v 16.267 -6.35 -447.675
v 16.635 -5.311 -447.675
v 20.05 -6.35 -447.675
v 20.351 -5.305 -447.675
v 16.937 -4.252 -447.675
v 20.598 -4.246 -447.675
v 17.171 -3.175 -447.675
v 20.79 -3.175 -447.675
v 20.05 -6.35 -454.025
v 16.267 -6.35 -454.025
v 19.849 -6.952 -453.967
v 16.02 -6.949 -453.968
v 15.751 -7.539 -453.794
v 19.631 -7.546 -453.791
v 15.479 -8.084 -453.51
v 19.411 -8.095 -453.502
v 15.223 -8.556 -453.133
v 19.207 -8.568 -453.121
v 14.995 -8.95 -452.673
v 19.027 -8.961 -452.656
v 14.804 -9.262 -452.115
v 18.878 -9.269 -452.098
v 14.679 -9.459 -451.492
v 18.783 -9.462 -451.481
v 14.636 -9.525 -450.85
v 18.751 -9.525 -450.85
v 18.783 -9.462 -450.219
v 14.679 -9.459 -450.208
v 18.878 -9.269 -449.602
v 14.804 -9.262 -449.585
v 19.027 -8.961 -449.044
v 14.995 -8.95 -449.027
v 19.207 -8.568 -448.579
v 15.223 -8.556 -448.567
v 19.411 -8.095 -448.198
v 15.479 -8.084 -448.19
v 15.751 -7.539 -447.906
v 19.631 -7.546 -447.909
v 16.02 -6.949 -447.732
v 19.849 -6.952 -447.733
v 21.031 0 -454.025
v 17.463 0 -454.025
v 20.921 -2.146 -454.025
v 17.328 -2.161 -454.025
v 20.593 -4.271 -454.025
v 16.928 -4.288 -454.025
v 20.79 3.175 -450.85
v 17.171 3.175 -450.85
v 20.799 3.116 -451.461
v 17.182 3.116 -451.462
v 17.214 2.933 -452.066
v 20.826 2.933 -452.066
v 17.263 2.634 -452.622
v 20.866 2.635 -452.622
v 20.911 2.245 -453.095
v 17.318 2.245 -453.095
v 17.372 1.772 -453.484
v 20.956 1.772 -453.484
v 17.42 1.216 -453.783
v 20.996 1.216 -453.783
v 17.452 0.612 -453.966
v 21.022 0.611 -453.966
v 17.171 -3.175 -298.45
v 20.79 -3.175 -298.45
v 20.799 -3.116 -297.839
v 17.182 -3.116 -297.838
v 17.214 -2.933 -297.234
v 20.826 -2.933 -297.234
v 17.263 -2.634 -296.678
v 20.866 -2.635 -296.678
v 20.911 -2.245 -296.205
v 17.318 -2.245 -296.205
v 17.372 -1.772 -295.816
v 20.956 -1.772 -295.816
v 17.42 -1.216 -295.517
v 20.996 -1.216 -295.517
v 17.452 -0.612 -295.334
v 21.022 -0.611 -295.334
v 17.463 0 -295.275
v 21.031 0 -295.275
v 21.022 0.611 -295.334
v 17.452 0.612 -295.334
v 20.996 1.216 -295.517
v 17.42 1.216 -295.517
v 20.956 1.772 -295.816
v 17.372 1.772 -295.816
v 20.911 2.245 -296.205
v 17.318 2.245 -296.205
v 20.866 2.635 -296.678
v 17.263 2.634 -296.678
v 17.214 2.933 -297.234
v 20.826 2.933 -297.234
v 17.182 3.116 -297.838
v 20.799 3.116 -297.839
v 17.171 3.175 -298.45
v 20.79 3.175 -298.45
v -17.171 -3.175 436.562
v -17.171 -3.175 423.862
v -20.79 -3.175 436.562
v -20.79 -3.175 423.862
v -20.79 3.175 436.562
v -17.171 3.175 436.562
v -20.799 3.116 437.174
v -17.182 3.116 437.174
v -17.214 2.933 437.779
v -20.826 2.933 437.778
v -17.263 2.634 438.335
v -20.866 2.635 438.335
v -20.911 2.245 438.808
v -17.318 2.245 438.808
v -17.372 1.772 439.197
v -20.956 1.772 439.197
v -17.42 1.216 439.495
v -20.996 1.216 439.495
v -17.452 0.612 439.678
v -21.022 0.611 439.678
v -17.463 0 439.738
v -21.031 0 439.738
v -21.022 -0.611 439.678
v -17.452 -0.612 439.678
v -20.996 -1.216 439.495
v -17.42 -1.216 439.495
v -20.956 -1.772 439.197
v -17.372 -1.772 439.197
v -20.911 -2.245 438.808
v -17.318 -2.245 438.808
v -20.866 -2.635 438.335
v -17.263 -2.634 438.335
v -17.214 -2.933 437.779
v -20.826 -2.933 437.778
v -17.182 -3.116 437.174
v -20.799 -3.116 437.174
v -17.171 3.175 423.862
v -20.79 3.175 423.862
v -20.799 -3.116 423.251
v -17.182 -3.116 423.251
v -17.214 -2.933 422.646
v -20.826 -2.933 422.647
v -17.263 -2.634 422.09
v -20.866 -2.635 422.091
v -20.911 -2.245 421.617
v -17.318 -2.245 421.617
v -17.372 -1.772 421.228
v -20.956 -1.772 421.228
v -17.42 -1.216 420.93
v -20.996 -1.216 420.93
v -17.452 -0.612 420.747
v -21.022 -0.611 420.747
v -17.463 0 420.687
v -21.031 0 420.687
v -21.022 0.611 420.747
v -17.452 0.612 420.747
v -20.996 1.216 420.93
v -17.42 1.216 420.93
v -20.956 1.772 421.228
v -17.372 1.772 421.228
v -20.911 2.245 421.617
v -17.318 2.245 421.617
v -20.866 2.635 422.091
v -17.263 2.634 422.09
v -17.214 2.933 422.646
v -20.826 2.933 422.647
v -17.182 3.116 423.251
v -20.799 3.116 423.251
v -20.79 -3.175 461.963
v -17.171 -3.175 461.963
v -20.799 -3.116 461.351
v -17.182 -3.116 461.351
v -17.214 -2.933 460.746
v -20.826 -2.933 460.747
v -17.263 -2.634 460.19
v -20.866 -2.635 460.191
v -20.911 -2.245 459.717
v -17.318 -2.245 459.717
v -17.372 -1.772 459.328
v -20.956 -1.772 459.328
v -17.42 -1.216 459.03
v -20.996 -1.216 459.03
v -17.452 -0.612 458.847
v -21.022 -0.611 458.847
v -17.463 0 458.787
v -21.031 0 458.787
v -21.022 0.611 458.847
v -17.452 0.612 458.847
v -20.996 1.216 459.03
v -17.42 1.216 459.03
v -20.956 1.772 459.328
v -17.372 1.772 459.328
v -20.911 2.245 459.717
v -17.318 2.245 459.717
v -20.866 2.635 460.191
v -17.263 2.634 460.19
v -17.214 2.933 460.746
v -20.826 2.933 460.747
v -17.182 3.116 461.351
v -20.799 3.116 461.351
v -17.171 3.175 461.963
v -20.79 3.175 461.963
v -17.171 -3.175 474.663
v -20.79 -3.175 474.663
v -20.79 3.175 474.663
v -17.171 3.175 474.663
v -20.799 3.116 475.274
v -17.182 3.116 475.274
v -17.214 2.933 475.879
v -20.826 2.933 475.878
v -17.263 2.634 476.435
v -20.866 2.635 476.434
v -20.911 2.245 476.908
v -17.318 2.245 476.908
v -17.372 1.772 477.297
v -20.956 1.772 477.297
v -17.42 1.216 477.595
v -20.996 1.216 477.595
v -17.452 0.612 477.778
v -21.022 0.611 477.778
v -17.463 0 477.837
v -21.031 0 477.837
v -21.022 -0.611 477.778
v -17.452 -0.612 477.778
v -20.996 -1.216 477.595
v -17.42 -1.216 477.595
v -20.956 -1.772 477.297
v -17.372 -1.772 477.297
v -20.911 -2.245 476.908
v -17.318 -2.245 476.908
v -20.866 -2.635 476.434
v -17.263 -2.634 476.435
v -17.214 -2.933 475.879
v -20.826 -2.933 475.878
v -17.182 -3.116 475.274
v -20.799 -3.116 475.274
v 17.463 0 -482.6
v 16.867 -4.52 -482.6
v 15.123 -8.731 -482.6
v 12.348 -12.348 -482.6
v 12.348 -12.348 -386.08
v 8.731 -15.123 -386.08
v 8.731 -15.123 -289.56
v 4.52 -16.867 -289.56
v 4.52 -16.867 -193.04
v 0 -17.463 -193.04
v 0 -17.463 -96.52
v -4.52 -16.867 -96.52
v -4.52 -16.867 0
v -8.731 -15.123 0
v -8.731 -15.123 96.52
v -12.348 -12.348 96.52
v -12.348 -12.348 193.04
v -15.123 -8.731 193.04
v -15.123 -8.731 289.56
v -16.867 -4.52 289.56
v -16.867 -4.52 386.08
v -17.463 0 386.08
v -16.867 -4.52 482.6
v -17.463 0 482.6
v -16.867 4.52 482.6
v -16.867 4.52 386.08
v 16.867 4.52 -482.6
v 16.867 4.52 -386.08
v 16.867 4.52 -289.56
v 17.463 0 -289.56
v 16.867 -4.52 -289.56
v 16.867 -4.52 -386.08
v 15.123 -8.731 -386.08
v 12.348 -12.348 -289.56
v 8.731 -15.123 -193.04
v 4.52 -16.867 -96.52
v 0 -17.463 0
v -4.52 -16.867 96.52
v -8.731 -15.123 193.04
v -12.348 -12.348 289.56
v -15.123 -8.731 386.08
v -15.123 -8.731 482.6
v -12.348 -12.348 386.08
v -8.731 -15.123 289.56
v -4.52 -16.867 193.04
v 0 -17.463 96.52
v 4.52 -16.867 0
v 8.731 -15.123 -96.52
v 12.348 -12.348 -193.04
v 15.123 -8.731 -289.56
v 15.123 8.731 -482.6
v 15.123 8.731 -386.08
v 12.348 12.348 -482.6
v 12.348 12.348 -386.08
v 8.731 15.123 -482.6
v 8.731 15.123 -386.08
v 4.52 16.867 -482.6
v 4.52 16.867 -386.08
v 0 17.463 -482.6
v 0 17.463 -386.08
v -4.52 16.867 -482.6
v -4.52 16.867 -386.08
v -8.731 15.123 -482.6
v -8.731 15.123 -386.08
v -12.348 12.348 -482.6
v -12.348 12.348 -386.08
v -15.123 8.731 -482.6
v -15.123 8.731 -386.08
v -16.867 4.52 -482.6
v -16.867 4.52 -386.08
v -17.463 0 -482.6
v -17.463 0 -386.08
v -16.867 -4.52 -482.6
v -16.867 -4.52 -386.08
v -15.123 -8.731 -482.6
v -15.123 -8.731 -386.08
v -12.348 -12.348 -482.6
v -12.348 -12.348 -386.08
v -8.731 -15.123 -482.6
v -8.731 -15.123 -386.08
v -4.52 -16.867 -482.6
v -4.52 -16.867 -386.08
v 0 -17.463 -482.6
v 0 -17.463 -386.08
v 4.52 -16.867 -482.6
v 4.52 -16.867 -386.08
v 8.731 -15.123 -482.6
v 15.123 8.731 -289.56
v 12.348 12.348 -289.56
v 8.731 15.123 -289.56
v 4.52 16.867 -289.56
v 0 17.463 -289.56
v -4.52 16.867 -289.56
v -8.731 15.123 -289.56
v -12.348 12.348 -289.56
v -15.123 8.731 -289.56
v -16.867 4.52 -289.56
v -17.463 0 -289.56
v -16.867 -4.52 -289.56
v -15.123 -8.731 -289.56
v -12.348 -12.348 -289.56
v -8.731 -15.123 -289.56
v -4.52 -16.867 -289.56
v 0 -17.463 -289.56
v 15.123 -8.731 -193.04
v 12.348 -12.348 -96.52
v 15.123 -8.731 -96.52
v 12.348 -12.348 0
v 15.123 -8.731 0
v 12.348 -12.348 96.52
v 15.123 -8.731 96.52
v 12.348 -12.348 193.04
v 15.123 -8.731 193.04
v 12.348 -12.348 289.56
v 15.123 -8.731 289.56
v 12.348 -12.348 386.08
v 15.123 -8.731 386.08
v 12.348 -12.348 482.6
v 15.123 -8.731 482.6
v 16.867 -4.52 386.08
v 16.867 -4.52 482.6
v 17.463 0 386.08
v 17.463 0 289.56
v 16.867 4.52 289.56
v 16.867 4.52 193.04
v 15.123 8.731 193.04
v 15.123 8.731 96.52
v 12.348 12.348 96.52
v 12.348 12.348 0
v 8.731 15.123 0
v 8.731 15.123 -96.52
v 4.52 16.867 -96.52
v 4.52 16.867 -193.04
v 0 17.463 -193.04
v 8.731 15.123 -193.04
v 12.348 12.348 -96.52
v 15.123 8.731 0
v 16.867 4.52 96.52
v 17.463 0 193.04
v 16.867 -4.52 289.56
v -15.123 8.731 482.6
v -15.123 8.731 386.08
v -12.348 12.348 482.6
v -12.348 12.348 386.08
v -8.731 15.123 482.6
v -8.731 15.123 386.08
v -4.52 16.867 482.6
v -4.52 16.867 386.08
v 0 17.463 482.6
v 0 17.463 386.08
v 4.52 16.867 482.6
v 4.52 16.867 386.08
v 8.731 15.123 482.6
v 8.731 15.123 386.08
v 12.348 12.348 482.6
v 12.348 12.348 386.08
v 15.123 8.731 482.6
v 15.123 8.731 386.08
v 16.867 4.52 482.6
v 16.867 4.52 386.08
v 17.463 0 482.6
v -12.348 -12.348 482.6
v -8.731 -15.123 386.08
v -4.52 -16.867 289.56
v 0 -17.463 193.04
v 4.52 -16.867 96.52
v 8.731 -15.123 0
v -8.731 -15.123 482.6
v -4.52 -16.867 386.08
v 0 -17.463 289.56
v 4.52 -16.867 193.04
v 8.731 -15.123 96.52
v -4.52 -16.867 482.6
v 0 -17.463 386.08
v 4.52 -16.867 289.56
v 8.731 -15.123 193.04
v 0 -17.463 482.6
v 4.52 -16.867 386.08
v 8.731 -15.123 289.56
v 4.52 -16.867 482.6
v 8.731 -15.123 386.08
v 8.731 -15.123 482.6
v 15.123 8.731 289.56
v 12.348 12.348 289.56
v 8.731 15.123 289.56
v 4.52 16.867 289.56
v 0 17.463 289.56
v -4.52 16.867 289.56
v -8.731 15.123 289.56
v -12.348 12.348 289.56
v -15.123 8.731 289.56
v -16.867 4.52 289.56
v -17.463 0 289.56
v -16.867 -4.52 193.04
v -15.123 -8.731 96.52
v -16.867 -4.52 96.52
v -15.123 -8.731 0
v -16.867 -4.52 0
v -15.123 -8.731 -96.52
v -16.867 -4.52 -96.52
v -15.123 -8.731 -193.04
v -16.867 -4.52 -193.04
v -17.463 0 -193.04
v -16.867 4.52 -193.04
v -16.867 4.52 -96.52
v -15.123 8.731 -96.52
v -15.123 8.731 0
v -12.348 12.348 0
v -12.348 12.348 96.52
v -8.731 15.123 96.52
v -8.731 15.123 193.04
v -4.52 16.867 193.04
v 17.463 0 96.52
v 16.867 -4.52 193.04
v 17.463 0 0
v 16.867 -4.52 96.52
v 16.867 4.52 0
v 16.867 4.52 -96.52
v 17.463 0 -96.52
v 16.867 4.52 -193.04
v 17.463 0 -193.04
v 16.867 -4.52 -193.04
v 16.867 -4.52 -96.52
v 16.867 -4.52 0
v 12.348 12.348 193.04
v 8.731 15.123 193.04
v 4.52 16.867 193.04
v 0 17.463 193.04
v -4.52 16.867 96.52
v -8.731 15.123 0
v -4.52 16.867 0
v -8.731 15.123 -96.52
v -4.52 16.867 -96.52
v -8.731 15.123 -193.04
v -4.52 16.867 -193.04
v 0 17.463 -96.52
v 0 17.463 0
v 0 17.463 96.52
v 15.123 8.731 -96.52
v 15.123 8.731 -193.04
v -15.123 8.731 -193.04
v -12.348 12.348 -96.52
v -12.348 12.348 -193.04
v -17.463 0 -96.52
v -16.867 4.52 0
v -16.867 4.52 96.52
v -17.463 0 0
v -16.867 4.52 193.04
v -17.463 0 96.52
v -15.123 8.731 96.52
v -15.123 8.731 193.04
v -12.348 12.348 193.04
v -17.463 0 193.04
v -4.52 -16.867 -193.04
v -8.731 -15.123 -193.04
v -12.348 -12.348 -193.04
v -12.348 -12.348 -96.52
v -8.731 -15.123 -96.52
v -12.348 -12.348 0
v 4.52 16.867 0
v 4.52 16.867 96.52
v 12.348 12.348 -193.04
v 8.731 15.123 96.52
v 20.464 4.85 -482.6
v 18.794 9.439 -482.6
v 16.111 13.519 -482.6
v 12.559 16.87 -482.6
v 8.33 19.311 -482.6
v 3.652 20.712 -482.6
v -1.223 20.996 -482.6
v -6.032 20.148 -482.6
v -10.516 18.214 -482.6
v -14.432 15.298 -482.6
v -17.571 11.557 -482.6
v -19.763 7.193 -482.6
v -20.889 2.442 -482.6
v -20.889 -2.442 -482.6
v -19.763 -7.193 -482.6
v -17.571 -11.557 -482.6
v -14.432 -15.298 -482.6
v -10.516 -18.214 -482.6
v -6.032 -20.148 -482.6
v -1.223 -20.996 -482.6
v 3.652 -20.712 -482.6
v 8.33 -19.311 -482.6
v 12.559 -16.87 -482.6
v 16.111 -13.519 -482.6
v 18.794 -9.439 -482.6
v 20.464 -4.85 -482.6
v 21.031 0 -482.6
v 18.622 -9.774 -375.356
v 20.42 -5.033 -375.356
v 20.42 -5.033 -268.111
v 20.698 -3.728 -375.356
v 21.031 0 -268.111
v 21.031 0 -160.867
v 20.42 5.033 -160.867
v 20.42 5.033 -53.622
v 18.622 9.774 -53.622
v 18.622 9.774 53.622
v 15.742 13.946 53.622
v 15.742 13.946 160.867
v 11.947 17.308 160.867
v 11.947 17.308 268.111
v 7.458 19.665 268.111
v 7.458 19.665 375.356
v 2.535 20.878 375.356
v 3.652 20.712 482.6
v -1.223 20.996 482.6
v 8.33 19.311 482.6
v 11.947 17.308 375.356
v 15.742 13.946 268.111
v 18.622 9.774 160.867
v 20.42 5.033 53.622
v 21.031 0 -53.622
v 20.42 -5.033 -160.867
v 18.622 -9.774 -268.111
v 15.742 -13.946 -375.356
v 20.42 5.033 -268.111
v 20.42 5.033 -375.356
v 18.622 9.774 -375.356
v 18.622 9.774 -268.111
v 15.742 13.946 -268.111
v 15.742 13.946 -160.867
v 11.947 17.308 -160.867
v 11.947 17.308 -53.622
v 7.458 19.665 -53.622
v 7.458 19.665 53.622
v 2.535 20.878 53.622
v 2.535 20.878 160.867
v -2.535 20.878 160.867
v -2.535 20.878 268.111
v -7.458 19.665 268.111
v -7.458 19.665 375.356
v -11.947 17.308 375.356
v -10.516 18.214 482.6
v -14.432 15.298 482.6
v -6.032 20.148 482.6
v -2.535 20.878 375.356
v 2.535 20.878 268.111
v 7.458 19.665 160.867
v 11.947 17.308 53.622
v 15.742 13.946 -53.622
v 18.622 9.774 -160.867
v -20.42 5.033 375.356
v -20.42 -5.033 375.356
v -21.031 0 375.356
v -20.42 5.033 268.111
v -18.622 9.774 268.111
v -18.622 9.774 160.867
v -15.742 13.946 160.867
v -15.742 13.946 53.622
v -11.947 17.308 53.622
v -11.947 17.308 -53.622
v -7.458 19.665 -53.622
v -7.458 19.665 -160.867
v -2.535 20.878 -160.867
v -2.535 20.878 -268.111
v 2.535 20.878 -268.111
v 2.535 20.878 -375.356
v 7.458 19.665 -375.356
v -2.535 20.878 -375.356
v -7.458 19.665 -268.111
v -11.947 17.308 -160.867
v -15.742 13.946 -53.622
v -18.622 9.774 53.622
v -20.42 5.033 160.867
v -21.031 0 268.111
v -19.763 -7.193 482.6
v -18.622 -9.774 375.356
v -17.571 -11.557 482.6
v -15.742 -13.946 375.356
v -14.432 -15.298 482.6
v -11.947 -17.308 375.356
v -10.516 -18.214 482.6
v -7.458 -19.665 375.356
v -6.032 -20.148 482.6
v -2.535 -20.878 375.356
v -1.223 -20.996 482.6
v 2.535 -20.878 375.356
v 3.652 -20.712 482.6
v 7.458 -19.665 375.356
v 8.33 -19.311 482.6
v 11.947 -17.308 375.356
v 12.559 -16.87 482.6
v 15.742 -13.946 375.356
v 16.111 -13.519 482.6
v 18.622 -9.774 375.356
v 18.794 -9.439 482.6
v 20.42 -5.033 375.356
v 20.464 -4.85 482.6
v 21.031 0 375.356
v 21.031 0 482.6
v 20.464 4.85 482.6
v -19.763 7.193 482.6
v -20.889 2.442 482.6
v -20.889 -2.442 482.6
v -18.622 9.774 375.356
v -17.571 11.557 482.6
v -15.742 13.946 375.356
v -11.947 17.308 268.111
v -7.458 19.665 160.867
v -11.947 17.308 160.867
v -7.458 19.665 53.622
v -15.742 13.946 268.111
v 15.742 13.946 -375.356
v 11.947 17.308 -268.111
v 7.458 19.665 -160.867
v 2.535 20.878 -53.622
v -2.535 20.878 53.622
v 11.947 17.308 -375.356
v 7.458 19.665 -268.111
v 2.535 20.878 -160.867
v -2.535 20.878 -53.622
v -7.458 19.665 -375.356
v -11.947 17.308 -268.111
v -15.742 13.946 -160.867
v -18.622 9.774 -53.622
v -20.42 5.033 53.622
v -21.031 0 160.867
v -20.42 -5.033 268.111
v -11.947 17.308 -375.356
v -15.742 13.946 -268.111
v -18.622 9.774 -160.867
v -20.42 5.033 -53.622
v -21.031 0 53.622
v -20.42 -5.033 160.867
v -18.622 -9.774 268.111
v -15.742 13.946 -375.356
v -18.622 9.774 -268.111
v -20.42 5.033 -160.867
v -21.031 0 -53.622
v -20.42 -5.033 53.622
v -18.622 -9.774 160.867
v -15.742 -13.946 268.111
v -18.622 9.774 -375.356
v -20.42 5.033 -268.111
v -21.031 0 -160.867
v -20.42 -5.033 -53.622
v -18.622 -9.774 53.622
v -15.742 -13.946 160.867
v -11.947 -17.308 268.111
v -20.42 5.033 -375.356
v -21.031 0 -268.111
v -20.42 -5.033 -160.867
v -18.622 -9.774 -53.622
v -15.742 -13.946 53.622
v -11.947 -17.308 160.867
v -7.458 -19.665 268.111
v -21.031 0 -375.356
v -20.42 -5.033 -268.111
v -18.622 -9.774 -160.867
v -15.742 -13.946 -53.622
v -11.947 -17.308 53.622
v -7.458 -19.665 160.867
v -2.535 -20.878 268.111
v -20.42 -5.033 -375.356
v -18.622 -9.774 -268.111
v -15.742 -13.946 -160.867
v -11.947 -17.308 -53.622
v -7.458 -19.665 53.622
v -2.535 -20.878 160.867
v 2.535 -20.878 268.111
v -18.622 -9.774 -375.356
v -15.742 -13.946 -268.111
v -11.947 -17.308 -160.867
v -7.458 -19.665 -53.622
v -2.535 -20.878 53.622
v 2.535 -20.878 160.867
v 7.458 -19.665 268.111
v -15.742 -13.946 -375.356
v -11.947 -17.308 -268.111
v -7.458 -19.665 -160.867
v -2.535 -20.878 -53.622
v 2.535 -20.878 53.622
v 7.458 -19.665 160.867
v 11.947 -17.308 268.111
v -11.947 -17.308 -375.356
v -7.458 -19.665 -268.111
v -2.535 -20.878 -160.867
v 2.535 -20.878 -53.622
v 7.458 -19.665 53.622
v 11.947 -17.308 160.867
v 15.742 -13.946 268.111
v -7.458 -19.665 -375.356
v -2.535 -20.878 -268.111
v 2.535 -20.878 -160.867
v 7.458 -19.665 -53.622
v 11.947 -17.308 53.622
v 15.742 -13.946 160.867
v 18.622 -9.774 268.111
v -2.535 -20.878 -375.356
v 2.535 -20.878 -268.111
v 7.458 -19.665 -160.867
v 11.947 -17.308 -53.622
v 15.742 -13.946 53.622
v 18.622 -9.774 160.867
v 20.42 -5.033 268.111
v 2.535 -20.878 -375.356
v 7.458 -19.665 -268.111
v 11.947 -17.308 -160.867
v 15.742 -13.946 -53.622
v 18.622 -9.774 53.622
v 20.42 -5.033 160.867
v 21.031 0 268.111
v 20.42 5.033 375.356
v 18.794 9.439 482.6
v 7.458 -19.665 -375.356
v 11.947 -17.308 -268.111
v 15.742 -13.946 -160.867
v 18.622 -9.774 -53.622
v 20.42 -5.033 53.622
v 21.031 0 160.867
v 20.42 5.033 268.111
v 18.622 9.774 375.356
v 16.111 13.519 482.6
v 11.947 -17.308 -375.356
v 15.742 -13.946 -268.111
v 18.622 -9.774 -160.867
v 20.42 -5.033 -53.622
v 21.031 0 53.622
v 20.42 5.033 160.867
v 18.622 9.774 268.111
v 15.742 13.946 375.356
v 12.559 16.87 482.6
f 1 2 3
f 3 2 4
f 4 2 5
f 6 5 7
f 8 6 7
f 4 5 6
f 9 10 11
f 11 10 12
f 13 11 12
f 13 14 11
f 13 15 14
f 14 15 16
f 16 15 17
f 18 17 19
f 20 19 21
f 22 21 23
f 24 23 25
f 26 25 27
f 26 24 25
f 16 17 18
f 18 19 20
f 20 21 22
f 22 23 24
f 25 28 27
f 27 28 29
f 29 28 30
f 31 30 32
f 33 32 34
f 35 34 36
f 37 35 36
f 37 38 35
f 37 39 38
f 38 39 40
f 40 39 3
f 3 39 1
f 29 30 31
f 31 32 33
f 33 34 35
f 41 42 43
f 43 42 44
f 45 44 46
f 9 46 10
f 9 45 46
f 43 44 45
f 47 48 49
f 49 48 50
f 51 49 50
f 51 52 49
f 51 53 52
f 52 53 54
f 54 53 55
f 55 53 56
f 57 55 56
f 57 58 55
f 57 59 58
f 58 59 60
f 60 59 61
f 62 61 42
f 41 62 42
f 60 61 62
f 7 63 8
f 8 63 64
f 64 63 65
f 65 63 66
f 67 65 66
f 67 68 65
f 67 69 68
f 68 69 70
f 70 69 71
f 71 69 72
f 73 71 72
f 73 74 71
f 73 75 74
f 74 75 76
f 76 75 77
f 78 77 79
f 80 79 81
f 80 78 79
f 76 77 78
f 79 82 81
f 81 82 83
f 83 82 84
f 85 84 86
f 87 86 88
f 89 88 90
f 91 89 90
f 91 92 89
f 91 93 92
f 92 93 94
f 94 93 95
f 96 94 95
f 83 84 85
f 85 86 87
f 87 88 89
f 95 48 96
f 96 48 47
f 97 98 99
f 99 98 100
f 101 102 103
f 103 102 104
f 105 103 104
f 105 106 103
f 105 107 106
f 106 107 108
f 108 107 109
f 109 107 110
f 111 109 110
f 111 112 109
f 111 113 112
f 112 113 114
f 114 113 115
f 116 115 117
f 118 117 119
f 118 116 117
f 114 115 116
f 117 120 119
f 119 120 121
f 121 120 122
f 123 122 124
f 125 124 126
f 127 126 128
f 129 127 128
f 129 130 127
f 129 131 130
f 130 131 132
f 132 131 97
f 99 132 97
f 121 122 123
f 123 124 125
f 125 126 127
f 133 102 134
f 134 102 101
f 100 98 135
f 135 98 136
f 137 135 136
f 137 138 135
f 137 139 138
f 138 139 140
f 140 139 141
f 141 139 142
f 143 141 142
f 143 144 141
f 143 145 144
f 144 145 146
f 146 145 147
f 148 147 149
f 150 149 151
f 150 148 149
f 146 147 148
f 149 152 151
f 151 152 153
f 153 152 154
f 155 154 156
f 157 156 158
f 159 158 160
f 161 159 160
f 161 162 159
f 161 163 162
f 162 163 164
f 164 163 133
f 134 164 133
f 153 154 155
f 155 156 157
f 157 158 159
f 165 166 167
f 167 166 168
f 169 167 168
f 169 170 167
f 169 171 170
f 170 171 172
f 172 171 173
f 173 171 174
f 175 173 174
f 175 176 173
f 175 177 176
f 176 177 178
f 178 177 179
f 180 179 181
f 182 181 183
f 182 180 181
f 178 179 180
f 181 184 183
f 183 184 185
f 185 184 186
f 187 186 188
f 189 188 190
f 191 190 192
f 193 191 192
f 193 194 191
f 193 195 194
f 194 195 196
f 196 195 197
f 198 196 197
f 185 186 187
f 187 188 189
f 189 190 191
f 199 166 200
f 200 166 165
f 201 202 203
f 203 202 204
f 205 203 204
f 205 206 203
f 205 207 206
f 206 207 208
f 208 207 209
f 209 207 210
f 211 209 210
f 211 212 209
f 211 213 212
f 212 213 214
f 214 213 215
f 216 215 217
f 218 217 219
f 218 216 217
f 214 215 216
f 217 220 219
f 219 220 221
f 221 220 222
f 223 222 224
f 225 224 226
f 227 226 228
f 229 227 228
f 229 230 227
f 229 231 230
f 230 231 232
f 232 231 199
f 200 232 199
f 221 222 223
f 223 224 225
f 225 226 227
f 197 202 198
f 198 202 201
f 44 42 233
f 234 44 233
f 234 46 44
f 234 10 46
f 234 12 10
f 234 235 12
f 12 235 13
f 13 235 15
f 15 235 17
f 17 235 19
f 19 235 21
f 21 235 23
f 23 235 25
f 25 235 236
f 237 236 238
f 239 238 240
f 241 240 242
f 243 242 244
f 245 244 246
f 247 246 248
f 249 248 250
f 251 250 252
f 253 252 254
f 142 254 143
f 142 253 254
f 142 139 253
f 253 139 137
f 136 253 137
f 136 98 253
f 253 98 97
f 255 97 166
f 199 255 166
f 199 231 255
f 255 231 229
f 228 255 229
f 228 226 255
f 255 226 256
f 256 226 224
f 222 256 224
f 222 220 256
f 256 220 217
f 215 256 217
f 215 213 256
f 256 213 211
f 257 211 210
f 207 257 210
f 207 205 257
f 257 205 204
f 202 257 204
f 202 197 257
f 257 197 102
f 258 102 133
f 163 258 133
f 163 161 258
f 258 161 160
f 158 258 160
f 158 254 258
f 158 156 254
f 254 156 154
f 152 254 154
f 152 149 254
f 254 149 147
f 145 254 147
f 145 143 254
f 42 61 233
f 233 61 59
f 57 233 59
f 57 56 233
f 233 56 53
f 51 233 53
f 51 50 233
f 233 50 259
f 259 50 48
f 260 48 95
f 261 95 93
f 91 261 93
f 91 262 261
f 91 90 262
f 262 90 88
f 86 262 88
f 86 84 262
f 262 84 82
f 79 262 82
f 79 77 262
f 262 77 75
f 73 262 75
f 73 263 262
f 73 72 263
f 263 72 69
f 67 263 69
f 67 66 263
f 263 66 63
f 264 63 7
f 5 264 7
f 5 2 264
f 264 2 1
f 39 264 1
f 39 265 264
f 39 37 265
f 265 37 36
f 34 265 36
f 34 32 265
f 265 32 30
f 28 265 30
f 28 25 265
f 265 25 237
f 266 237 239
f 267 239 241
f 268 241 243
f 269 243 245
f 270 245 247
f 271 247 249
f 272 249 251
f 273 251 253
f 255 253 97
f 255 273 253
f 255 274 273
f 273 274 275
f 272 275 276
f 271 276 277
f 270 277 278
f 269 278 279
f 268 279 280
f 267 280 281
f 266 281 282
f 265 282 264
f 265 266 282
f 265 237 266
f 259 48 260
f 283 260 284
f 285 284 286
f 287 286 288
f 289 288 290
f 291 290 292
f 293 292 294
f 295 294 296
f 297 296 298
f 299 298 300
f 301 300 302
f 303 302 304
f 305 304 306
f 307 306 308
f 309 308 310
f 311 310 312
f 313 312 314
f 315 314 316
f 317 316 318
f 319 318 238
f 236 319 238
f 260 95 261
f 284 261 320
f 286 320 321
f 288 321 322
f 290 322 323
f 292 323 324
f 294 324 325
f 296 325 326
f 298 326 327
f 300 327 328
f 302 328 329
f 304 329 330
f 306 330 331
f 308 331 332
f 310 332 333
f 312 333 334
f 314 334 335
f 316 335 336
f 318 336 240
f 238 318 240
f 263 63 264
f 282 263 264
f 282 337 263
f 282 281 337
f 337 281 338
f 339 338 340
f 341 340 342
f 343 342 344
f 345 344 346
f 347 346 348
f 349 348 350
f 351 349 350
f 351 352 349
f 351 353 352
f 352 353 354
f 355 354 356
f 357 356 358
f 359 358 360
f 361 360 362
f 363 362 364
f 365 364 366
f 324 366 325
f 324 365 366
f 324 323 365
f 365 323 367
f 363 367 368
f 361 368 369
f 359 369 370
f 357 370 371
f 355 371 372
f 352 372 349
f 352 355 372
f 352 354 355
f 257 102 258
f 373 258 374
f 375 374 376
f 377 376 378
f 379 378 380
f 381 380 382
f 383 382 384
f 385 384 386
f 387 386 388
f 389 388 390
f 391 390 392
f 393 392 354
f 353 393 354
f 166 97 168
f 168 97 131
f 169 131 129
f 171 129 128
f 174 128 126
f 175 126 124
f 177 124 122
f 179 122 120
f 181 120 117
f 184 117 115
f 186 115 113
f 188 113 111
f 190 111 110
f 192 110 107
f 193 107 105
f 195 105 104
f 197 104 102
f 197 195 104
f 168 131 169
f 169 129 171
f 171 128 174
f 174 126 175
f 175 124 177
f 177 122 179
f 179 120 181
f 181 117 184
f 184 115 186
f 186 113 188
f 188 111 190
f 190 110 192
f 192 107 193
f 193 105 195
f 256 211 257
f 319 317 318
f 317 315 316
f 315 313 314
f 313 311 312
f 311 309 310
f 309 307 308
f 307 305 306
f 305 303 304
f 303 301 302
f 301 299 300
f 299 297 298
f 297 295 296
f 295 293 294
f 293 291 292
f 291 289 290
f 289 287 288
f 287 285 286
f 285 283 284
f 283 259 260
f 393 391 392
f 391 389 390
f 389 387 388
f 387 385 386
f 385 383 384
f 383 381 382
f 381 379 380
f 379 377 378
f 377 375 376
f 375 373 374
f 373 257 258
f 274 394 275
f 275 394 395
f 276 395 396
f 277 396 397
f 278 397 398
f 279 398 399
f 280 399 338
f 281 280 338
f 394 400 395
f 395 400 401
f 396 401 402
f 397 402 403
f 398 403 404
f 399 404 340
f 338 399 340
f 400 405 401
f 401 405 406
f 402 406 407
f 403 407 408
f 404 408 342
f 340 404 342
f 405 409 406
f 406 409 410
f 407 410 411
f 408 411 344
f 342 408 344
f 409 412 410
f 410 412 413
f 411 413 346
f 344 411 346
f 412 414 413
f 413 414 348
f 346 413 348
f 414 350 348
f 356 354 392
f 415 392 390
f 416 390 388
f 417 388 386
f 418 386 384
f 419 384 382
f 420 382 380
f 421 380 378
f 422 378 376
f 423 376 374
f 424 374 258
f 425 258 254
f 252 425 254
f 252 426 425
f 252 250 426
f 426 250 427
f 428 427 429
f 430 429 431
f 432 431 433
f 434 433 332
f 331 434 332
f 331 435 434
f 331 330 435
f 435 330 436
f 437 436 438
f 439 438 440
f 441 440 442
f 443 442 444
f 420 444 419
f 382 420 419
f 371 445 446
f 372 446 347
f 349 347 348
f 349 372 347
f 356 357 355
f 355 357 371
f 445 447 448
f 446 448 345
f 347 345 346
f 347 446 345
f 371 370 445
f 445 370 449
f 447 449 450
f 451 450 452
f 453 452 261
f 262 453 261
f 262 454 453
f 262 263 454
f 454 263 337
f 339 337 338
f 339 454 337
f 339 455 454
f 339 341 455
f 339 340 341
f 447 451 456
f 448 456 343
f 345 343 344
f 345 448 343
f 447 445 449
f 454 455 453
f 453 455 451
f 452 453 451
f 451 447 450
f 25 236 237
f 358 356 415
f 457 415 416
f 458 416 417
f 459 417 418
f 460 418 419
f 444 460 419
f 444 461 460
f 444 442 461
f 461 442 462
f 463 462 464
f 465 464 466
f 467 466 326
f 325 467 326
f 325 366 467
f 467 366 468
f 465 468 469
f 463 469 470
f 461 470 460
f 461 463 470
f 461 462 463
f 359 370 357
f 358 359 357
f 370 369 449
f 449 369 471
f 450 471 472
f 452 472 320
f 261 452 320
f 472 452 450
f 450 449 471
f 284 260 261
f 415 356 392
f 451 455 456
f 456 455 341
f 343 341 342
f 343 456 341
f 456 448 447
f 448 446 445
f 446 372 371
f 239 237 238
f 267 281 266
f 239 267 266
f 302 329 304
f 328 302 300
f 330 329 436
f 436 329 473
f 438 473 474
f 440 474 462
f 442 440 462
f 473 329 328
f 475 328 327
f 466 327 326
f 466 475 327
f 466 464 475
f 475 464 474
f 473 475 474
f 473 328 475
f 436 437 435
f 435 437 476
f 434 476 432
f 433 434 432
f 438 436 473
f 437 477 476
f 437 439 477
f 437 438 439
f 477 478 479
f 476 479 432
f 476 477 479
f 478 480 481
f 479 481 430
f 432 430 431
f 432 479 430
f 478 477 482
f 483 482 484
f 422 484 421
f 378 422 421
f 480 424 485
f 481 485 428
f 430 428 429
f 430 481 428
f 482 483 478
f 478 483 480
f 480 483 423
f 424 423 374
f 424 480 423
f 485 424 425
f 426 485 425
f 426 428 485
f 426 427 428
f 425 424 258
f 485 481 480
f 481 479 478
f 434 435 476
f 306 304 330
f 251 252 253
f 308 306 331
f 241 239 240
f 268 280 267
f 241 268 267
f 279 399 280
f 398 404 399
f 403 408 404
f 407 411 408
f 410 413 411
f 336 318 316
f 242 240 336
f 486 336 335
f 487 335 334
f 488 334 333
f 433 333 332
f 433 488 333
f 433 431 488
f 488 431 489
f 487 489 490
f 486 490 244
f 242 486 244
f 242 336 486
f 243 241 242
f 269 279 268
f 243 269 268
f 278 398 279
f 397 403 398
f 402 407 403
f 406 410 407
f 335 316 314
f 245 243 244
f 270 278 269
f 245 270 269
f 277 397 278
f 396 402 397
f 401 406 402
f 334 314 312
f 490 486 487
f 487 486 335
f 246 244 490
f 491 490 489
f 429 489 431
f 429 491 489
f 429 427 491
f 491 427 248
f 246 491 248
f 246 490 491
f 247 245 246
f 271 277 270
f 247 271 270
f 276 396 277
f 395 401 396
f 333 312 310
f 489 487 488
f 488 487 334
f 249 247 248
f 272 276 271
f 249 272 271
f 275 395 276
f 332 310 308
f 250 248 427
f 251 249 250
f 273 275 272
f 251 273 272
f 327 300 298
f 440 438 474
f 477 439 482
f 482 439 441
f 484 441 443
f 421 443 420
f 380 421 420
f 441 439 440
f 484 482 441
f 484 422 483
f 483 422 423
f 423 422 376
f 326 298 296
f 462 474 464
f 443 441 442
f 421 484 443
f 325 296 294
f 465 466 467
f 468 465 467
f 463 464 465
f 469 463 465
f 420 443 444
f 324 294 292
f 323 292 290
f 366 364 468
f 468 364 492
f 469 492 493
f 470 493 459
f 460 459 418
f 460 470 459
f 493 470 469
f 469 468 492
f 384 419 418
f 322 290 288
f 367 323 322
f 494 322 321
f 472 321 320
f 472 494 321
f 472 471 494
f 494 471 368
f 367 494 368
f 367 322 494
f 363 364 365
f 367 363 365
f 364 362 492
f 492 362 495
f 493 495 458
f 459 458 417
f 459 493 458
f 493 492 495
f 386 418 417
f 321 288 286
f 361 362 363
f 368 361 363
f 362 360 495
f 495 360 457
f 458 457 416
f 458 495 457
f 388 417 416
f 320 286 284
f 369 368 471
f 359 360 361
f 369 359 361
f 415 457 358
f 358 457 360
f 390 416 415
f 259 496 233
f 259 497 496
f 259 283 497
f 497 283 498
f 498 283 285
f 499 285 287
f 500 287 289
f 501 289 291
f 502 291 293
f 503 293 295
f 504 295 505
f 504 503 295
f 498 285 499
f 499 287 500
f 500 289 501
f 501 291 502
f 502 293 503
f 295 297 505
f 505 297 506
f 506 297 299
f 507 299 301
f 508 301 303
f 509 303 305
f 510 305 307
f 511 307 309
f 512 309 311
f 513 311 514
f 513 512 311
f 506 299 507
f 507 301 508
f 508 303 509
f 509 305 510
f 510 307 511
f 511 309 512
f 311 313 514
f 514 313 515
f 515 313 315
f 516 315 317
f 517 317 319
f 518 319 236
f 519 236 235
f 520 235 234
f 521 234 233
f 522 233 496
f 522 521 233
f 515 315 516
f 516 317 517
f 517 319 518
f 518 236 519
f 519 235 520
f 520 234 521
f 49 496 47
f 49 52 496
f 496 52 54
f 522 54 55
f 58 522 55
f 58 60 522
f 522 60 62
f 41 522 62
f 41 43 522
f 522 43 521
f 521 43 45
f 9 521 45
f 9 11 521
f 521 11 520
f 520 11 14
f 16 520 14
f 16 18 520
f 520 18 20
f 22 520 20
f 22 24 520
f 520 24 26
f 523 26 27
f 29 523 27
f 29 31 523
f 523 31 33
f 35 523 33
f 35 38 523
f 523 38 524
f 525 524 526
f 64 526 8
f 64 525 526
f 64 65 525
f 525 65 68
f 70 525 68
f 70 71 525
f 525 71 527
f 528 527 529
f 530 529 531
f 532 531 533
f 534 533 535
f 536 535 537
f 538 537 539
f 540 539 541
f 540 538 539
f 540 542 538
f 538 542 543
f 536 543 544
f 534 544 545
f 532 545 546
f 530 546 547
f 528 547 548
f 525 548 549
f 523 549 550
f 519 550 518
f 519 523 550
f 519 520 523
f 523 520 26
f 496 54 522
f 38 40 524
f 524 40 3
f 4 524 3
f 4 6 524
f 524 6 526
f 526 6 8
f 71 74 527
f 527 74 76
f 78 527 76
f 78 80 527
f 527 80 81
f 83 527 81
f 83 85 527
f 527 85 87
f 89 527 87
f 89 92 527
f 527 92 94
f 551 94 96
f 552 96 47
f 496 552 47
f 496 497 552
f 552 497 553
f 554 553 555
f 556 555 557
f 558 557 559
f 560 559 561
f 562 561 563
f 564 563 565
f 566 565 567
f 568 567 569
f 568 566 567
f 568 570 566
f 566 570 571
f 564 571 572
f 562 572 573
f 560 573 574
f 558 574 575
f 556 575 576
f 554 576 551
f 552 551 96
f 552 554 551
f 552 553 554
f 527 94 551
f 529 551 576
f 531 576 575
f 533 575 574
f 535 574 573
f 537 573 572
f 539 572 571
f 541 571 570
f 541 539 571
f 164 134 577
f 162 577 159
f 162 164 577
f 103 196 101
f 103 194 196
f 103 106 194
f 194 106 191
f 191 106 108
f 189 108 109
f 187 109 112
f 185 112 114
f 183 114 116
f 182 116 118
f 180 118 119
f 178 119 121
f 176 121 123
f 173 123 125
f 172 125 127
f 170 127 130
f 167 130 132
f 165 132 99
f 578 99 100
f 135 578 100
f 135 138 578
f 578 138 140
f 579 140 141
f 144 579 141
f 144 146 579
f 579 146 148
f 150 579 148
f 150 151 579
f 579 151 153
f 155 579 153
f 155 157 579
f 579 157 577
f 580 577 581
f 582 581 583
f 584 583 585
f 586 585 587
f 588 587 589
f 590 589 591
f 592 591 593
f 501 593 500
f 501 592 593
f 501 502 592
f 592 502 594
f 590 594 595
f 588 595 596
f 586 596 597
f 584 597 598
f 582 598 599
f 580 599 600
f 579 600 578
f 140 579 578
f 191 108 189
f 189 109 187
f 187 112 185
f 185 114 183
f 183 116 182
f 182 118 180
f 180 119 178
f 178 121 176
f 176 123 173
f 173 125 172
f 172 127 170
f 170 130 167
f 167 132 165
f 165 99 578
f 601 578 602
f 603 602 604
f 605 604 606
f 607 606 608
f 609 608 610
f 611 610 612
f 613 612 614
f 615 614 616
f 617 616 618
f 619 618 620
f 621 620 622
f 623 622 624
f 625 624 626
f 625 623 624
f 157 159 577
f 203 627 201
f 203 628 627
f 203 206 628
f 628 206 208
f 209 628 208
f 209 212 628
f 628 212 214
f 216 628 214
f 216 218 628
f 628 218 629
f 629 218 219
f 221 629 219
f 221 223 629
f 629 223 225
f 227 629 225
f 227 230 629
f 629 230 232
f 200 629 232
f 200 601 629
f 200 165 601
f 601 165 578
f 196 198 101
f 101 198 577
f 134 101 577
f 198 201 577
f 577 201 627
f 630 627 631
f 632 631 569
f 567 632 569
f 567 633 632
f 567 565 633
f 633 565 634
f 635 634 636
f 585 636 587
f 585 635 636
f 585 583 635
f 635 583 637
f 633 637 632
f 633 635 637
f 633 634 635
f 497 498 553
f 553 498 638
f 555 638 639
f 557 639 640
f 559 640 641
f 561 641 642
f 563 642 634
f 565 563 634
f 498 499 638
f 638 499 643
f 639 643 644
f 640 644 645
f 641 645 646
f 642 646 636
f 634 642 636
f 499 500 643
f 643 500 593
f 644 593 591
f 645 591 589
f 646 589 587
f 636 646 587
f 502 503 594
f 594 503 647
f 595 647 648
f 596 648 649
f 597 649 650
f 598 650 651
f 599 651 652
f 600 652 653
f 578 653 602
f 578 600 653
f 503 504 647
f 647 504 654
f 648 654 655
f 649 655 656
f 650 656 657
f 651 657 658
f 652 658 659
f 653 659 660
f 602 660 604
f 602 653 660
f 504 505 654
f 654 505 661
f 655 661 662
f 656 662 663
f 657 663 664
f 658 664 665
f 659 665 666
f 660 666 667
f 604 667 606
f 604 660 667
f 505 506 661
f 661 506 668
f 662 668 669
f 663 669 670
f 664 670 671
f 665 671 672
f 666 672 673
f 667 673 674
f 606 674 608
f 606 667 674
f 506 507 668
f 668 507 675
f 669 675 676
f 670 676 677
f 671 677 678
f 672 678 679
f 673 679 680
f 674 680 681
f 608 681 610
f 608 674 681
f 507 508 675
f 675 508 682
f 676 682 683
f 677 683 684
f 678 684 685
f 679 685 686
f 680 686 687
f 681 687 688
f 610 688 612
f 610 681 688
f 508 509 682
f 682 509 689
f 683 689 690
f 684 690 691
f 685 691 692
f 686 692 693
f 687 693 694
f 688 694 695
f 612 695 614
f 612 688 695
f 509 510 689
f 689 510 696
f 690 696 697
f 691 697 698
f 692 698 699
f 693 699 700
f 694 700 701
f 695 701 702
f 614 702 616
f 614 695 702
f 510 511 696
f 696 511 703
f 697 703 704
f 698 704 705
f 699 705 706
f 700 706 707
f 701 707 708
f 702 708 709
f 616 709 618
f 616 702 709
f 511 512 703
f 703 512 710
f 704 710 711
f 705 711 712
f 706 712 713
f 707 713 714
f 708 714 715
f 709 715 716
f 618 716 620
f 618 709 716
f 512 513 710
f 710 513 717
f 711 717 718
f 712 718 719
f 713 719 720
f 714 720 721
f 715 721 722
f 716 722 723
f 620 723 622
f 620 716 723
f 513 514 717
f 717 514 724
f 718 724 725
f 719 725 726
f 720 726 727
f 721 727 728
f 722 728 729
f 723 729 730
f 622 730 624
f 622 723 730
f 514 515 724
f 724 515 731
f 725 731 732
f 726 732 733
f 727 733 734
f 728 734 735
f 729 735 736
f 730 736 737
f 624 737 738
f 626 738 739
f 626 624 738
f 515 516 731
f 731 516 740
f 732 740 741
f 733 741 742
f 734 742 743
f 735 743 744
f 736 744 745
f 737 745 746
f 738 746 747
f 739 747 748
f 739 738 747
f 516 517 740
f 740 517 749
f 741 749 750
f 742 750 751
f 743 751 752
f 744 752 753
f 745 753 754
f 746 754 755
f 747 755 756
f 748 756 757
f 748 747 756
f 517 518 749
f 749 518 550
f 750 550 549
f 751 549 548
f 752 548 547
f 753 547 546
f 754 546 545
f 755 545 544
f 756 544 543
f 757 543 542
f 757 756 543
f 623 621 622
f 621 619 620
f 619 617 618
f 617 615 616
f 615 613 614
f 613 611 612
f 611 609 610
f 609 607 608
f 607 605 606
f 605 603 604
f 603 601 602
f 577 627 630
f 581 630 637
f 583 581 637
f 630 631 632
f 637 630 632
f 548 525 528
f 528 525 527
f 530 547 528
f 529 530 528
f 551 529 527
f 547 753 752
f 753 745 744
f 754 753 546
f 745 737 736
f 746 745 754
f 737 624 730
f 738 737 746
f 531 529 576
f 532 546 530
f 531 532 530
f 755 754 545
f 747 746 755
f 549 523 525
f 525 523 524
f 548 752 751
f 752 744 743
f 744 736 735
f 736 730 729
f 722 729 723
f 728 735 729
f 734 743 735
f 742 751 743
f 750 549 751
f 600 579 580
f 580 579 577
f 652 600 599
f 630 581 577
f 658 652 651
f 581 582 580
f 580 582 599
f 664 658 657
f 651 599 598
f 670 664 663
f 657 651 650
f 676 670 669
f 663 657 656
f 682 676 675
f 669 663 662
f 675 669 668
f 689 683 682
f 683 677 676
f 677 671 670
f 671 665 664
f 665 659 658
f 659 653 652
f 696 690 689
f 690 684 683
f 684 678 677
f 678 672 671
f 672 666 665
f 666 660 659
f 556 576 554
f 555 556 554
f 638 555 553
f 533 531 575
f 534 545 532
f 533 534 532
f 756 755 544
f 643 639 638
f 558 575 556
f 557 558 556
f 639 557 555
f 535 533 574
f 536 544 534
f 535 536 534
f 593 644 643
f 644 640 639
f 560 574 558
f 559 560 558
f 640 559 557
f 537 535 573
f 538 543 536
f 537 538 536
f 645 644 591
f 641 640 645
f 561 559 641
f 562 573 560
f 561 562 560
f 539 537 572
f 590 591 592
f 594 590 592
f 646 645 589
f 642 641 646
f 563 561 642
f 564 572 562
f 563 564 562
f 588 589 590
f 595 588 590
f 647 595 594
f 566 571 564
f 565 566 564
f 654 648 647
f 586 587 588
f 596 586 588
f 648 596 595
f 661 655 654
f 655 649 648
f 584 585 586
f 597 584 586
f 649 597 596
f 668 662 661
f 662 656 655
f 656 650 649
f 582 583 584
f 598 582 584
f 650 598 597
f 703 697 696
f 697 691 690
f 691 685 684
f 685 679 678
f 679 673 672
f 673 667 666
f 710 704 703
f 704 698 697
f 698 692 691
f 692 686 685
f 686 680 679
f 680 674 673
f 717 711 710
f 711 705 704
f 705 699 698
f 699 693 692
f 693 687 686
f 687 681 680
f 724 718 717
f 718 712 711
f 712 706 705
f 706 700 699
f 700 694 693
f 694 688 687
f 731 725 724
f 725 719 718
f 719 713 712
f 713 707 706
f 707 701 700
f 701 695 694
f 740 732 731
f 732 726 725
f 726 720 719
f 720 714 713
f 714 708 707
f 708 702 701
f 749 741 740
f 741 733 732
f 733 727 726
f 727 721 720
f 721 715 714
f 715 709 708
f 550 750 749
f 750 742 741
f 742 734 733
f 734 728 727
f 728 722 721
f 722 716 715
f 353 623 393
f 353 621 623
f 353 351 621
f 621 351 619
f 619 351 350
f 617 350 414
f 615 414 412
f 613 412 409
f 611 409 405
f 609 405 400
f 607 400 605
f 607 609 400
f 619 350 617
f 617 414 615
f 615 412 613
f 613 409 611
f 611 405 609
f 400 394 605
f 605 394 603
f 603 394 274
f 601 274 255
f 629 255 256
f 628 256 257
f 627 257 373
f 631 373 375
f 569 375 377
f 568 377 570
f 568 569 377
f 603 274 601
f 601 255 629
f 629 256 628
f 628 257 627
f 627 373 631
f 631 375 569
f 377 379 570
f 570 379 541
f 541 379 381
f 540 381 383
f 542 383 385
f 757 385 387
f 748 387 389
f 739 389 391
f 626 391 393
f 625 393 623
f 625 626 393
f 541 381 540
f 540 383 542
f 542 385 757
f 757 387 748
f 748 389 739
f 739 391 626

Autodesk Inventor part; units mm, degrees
ref_plane "XZ Plane" through (0, 0, 0) normal (0, 1, 0) x (-1, 0, 0)
ref_plane "XY Plane" through (0, 0, 0) normal (0, 0, 1) x (1, 0, 0)
sketch "Sketch1" plane through (0, 0, 0) normal (0, 0, 1) x (1, 0, 0)
  circle A0 centre (0, 0) radius 21.0312
  circle A1 centre (0, 0) radius 17.4625
  dimension "d0" = 42.0624
  dimension "d1" = 34.925
extrude "Extrusion1" add sketch "Sketch1" along normal mid plane 965.2
ref_plane "Work Plane1" through (0, 0, 0) normal (1, 0, 0) x (0, 0, 1)
sketch "Sketch2" plane through (0, 0, 0) normal (1, 0, 0) x (0, 0, 1)
  line L0 (-482.6, -21.0312) -> (482.6, -21.0312) projected
  line L1 (-482.6, 21.0312) -> (482.6, 21.0312) projected
  line L2 (482.6, 17.4625) -> (482.6, -17.4625) projected
  line L3 (482.6, 21.0312) -> (482.6, -21.0312) projected
  line L4 (-482.6, -17.4625) -> (-482.6, 17.4625) projected
  line L5 (-482.6, -21.0312) -> (-482.6, 21.0312) projected
  line L6 (-675.64, 0) -> (675.64, 0) projected
  arc A0 (474.6625, -3.175) -> (474.6625, 3.175) centre (474.6625, 0) ccw
  arc A1 (436.5625, -3.175) -> (436.5625, 3.175) centre (436.5625, 0) ccw
  arc A2 (461.9625, 3.175) -> (461.9625, -3.175) centre (461.9625, 0) ccw
  arc A3 (423.8625, 3.175) -> (423.8625, -3.175) centre (423.8625, 0) ccw
  line L7 (423.8625, 3.175) -> (436.5625, 3.175)
  line L8 (423.8625, -3.175) -> (436.5625, -3.175)
  line L9 (461.9625, -3.175) -> (474.6625, -3.175)
  line L10 (461.9625, 3.175) -> (474.6625, 3.175)
  dimension "d5" = 7.9375
  dimension "d6" = 38.1
  dimension "d7" = 6.35
  dimension "d18" = 12.7
  dimension "d19" = 12.7
extrude "Extrusion2" cut sketch "Sketch2" against normal blind 965.2 contours A3 L7 A1 L6 | L6 A1 L8 A3 | A0 L9 A2 L6 | L6 A2 L10 A0
sketch "Sketch3" plane through (0, 0, 0) normal (1, 0, 0) x (0, 0, 1)
  line L0 (-298.45, -3.175) -> (-450.85, -3.175)
  line L1 (-454.025, 0) -> (-454.025, 6.35)
  line L2 (-450.85, 9.525) -> (-450.85, 9.525)
  line L3 (-447.675, 6.35) -> (-447.675, 3.175)
  line L4 (-447.675, 3.175) -> (-298.45, 3.175)
  arc A0 (-298.45, -3.175) -> (-298.45, 3.175) centre (-298.45, 0) ccw
  arc A1 (-450.85, 9.525) -> (-454.025, 6.35) centre (-450.85, 6.35) ccw
  arc A2 (-447.675, 6.35) -> (-450.85, 9.525) centre (-450.85, 6.35) ccw
  arc A3 (-454.025, 0) -> (-450.85, -3.175) centre (-450.85, 0) ccw
  line L5 (-482.6, -21.0312) -> (-482.6, 21.0312) projected
  line L6 (-675.64, 0) -> (675.64, 0) projected
  dimension "d10" = 6.35
  dimension "d11" = 6.35
  dimension "d12" = 3.175
  dimension "d13" = 6.35
  dimension "d14" = 152.4
  dimension "d15" = 31.75
extrude "Extrusion3" cut sketch "Sketch3" along normal blind 965.2
properties part number "FE-00028"
